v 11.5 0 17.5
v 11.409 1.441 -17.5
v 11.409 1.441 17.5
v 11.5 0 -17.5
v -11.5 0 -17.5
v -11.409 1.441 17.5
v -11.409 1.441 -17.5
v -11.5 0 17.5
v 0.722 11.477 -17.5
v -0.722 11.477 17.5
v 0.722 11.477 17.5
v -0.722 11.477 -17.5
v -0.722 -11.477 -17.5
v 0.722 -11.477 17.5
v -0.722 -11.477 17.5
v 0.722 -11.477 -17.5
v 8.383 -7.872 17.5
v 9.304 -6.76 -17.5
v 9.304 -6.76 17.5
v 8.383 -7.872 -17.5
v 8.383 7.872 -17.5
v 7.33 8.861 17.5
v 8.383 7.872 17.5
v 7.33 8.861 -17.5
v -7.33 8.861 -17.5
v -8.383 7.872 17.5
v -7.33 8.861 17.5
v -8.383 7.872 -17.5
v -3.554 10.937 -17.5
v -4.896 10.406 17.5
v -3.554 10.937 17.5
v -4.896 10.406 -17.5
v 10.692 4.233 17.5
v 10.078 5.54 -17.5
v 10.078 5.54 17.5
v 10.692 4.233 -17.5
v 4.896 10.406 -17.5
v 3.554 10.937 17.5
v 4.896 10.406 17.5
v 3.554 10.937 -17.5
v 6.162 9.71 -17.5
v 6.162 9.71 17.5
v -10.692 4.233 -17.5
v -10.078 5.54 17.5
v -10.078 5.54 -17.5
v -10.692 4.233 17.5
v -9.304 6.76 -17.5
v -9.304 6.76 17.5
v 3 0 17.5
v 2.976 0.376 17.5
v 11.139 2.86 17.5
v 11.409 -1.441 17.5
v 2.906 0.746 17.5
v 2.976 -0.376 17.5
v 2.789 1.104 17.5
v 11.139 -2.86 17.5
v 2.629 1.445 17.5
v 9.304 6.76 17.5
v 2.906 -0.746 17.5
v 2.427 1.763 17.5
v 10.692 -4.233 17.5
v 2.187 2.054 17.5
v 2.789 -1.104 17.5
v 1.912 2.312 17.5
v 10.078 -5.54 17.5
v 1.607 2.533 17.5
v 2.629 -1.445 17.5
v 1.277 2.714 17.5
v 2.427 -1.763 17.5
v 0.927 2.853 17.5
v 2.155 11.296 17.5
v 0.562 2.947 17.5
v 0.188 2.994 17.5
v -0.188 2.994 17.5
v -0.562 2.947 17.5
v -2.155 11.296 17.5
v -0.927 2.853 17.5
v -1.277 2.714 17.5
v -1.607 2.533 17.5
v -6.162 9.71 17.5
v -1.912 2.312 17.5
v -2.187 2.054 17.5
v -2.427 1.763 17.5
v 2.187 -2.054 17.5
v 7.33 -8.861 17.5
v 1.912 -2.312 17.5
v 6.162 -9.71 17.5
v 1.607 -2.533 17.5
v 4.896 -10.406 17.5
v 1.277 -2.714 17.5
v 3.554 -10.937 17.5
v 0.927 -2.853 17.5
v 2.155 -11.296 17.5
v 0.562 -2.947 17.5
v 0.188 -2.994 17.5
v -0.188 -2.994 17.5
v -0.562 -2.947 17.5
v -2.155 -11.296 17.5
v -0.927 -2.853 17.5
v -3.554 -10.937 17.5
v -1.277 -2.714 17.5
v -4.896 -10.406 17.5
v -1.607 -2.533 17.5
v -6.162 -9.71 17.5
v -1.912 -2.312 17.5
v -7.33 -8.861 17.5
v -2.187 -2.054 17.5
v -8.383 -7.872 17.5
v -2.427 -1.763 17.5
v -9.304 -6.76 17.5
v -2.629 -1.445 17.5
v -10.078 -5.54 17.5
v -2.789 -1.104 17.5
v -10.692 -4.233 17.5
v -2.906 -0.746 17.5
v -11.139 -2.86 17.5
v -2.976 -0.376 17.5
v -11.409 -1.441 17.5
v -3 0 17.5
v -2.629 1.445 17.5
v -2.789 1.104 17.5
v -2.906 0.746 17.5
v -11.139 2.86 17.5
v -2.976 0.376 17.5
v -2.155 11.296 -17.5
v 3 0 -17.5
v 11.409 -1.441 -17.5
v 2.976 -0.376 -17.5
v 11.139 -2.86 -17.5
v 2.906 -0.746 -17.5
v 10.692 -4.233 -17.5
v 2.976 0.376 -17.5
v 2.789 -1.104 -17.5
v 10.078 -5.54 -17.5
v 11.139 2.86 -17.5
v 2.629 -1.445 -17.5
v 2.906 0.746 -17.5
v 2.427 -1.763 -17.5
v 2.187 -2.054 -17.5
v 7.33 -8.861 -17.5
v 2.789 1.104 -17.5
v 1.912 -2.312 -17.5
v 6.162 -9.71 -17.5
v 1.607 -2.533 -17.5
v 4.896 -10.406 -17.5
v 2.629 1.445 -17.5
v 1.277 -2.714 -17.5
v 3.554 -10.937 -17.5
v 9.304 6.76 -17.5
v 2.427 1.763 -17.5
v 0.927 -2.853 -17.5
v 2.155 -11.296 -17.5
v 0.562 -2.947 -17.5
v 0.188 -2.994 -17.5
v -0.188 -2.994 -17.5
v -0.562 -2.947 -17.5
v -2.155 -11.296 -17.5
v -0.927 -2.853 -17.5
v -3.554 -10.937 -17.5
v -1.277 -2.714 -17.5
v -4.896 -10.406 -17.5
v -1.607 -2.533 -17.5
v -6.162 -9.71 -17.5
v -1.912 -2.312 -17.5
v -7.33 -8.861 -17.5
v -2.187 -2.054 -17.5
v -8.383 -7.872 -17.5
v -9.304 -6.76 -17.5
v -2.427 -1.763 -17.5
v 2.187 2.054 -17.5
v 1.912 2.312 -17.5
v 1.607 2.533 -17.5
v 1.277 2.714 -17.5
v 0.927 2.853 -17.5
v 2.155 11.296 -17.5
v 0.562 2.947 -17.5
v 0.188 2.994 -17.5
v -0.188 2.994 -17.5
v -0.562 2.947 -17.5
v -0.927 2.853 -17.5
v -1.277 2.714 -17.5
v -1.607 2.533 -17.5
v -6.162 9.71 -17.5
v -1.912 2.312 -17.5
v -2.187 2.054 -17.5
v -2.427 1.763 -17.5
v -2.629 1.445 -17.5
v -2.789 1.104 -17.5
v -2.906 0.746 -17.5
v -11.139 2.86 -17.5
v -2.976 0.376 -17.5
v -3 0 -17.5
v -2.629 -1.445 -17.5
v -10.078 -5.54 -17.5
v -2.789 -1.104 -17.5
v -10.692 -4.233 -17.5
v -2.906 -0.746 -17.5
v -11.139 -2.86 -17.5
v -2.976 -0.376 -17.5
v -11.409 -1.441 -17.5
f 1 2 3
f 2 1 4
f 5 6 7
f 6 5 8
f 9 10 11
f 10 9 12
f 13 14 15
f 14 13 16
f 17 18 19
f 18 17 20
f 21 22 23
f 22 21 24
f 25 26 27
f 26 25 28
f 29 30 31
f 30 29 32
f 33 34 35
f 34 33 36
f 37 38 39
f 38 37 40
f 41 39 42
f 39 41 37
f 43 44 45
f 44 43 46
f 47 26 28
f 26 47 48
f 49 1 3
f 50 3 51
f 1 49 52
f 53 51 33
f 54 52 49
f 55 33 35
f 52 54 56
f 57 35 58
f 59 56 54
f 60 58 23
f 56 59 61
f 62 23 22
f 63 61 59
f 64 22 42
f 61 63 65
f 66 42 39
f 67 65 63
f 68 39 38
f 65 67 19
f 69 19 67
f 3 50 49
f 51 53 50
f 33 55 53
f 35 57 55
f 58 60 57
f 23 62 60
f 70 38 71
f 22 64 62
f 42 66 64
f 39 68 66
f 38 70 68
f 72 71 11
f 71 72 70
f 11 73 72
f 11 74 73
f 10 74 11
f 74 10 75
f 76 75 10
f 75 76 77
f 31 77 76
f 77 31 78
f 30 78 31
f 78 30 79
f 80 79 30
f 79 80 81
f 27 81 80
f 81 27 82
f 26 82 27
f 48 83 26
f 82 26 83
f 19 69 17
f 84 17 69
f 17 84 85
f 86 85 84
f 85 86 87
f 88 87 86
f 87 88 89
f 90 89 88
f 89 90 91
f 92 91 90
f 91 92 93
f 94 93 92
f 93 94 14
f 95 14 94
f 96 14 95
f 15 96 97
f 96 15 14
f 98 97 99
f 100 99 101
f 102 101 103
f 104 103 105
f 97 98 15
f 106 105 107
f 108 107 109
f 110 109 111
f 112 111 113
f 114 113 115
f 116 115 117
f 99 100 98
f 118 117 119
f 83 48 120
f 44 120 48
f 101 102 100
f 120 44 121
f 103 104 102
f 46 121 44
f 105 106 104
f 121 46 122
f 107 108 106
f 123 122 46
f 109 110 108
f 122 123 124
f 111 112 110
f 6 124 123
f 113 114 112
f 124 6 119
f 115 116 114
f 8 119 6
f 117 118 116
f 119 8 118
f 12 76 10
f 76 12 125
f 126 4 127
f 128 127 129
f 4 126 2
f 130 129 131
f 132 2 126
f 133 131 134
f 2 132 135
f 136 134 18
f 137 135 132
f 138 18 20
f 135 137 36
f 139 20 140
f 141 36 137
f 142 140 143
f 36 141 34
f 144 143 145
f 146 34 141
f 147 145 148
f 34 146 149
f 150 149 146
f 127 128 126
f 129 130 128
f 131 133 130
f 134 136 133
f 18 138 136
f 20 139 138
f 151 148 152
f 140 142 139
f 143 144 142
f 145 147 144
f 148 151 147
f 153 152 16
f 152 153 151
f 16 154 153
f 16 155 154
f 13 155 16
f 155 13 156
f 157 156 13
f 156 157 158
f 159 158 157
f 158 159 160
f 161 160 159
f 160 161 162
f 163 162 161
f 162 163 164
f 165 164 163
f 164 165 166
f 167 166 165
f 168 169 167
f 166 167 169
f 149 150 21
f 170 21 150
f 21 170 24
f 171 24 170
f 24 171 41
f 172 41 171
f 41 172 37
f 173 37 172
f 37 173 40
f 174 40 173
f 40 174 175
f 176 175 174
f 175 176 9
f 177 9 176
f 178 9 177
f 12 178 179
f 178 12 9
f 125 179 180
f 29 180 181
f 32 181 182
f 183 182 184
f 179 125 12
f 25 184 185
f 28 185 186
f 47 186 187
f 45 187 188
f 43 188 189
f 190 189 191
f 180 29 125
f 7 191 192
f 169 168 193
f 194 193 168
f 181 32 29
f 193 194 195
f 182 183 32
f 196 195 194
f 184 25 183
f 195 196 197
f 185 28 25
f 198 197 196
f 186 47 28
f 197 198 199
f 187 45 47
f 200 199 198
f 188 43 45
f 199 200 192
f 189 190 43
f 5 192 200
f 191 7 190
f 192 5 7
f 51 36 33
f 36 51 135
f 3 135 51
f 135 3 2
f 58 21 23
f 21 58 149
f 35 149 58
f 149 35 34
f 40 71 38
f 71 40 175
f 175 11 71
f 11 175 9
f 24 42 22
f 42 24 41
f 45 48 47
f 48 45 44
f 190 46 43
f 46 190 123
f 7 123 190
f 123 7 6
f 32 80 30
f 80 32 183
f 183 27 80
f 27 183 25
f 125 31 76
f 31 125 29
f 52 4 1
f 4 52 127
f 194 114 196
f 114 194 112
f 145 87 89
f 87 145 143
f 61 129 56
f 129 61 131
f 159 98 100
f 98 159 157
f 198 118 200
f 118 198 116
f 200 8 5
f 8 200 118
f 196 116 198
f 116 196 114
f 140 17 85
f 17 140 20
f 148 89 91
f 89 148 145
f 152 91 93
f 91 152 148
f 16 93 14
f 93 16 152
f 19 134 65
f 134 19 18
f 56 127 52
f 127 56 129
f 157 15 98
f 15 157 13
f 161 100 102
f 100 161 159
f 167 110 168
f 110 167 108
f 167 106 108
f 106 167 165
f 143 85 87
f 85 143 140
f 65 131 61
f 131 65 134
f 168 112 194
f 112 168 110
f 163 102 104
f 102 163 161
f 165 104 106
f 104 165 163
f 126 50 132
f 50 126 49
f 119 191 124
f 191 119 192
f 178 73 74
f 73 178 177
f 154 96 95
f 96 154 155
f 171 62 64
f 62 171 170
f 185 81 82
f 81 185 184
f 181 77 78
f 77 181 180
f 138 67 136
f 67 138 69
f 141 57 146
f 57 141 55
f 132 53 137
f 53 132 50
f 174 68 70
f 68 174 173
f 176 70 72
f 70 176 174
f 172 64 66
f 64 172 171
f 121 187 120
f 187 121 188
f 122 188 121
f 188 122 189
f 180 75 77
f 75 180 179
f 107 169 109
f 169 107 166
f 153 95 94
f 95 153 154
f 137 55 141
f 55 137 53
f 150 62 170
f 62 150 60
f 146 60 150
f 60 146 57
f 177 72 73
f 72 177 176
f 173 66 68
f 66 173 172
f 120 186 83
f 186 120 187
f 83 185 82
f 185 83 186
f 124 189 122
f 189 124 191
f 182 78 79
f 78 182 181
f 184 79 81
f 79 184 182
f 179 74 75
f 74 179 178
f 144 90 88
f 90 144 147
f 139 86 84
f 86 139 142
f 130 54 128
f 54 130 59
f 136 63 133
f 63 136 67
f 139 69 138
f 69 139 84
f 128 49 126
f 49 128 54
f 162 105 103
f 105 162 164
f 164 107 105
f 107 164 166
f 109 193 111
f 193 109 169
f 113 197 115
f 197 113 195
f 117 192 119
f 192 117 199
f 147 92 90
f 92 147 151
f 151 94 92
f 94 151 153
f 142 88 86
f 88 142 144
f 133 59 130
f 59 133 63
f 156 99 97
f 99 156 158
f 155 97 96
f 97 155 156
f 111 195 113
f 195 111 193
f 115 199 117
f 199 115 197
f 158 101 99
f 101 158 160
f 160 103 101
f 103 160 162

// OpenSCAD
$fn = 50;


difference() {
	union() {
		translate(v = [0, 0, -17.5000000000]) {
			cylinder(h = 35, r = 11.5000000000);
		}
	}
	union() {
		translate(v = [0, 0, -100.0000000000]) {
			cylinder(h = 200, r = 3);
		}
	}
}
